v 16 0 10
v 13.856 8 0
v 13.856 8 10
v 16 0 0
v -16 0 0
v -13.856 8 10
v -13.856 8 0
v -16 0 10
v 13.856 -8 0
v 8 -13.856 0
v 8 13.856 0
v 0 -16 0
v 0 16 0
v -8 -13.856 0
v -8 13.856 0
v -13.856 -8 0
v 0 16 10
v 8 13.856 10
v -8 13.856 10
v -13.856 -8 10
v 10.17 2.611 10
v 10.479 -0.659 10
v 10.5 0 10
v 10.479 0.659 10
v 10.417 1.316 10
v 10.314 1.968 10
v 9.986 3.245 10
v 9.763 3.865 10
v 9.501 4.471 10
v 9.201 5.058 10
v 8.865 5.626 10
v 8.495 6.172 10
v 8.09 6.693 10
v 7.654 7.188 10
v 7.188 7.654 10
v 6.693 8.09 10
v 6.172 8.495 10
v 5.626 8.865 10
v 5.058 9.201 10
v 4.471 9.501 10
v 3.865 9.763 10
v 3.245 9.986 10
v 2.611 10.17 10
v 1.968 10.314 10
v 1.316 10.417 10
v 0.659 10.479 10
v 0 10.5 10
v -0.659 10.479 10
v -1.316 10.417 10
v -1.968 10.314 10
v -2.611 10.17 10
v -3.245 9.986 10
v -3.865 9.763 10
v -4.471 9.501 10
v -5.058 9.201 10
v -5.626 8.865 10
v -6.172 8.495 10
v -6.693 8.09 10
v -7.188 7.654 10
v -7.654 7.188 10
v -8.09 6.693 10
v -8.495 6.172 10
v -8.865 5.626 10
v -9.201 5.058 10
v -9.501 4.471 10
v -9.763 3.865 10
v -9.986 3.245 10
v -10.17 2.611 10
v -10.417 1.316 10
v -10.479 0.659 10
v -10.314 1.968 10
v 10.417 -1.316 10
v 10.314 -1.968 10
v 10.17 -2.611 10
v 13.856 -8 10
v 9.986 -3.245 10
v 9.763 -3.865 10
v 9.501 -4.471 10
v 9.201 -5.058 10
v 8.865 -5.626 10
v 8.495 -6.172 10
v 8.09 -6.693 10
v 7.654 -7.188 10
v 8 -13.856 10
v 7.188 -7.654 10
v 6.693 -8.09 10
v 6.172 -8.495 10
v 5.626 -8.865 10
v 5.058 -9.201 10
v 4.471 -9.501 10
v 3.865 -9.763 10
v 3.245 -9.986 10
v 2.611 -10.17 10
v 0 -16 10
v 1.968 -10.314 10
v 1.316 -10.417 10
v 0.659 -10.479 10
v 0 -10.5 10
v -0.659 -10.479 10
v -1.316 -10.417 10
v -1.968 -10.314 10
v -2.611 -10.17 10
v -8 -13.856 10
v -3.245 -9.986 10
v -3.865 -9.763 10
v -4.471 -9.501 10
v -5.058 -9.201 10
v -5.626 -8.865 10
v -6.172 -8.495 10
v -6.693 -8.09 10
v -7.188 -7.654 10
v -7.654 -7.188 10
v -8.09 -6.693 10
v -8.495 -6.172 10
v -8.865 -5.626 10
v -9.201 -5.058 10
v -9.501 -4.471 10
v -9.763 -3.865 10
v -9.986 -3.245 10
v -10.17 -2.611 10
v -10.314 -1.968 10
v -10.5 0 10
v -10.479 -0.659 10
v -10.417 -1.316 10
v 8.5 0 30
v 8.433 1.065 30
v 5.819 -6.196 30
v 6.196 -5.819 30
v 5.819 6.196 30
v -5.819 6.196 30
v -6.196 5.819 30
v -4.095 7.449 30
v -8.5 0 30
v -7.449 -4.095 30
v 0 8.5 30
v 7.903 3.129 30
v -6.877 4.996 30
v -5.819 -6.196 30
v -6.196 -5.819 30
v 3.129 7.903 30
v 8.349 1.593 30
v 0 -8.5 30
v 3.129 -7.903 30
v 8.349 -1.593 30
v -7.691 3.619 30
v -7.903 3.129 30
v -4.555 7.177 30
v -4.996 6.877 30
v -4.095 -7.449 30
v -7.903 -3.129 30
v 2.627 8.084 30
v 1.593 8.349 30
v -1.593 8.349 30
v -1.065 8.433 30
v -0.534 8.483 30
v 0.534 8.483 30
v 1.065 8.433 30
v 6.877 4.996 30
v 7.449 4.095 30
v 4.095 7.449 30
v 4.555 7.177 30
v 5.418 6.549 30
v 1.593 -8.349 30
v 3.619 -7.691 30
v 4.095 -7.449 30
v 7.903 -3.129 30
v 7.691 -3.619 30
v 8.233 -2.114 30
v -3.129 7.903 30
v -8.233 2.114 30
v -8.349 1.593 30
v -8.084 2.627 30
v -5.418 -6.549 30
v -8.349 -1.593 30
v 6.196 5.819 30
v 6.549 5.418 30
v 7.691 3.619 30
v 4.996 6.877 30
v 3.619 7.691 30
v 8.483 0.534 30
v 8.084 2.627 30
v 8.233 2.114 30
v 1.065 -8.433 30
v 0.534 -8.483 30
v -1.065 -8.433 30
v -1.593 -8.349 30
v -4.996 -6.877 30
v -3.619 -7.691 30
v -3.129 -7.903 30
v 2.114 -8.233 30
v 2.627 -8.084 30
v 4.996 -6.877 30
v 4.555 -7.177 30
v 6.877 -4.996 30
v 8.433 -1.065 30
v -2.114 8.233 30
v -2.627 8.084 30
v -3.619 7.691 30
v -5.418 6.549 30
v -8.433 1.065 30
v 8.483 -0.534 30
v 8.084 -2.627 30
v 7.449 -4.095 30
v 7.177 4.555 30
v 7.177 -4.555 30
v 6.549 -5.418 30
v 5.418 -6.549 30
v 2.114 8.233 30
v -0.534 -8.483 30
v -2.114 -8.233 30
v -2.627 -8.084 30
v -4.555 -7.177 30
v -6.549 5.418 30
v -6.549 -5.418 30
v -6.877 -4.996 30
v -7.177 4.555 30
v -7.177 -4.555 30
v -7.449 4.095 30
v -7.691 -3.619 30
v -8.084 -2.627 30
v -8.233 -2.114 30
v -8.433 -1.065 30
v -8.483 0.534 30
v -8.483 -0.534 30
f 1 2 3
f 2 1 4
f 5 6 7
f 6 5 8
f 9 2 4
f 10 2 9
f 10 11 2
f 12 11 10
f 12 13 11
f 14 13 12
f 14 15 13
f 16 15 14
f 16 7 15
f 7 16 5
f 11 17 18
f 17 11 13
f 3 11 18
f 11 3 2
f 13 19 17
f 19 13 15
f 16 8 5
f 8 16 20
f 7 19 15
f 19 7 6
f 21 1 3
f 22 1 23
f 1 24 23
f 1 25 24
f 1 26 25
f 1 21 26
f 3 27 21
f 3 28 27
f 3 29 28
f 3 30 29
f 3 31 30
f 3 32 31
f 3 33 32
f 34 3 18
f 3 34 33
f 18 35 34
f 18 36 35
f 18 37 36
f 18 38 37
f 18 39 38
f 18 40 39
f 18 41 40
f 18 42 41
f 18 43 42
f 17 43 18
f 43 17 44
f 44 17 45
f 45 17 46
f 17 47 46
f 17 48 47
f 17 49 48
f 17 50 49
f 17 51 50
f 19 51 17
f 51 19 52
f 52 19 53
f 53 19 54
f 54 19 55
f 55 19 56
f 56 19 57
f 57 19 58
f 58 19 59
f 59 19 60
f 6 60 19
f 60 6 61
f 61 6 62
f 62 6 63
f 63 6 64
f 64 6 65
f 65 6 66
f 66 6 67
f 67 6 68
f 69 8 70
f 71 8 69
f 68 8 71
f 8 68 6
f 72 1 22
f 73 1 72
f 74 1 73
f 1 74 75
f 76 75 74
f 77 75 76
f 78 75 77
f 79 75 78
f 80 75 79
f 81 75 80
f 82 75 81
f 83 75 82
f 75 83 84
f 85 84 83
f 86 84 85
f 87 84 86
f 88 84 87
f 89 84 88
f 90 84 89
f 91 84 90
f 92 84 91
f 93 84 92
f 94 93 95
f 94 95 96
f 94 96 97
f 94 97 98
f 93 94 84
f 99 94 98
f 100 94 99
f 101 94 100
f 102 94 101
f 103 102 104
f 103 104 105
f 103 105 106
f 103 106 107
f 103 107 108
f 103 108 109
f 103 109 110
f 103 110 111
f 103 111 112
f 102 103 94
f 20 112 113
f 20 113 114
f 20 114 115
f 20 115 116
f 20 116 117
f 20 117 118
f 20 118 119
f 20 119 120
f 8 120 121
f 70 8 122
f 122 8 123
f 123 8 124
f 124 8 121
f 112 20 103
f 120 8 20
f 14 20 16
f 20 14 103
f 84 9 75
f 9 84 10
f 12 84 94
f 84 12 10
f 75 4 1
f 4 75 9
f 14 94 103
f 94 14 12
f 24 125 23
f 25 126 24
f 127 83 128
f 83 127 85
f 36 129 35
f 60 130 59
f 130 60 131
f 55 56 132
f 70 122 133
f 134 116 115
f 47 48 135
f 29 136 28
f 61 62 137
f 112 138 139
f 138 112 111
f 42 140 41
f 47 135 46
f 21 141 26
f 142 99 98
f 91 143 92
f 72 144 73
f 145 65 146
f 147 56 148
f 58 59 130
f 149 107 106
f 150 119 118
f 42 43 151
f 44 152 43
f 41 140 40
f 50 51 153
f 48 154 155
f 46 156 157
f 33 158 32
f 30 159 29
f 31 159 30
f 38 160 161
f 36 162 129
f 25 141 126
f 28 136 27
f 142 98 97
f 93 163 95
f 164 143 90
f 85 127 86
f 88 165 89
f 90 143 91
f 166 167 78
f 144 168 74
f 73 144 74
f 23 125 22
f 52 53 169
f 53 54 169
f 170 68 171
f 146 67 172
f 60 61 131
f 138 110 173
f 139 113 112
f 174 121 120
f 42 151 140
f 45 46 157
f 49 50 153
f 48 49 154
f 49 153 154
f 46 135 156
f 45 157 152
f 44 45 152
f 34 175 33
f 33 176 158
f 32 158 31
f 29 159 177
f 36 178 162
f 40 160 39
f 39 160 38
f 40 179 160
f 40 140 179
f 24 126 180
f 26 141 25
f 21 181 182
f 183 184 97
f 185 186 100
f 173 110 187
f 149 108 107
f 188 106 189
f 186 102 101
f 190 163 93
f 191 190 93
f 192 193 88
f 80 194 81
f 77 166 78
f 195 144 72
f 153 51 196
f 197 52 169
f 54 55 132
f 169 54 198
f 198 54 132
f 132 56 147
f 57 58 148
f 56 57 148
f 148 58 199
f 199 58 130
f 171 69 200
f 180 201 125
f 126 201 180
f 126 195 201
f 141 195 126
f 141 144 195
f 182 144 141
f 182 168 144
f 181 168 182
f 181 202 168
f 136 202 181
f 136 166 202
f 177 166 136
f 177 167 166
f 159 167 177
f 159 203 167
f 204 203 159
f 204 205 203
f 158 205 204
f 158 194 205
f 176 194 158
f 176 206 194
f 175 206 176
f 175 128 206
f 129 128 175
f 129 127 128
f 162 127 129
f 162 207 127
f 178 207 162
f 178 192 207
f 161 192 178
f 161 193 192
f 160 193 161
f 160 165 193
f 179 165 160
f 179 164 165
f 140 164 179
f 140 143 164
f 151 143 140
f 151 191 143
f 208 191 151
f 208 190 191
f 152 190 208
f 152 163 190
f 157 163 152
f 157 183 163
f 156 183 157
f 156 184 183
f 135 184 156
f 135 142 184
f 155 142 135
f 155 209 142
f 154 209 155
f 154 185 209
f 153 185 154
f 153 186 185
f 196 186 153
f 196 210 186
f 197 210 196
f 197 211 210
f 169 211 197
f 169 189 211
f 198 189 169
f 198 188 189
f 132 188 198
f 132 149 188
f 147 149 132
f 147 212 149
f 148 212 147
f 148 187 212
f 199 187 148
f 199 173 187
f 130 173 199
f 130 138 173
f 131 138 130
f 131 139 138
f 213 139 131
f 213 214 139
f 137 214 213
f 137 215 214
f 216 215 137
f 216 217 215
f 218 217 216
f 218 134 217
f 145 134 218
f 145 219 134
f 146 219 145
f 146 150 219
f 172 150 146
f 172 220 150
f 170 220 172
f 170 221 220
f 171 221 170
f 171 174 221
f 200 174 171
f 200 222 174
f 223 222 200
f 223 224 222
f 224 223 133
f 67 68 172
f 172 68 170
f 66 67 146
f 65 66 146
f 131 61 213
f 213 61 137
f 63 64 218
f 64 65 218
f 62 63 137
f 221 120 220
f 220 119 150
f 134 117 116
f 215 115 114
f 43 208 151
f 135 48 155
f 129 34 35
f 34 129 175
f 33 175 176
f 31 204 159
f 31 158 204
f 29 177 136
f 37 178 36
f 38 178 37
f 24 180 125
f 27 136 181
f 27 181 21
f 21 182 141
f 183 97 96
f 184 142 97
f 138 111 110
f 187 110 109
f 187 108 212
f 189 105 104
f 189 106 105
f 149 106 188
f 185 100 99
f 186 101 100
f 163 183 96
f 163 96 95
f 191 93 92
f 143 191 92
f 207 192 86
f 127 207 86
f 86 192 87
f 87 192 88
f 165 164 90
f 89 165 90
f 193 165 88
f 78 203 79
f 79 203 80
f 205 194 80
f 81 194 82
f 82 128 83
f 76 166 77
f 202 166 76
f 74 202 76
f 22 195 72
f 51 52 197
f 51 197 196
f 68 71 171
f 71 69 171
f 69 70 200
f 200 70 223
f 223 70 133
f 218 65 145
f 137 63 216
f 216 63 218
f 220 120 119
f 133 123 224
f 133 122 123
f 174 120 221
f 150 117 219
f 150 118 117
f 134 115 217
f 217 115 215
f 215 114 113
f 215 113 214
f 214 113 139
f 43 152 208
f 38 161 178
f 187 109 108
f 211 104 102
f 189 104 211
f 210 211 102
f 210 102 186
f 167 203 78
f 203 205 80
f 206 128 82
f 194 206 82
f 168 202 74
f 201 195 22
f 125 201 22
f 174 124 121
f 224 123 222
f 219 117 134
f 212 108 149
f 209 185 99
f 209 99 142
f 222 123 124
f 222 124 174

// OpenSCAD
cylinder(10,32/2,32/2, $fn=12);
translate([0,0,10]) cylinder(20,21/2,17/2, $fn=100);
